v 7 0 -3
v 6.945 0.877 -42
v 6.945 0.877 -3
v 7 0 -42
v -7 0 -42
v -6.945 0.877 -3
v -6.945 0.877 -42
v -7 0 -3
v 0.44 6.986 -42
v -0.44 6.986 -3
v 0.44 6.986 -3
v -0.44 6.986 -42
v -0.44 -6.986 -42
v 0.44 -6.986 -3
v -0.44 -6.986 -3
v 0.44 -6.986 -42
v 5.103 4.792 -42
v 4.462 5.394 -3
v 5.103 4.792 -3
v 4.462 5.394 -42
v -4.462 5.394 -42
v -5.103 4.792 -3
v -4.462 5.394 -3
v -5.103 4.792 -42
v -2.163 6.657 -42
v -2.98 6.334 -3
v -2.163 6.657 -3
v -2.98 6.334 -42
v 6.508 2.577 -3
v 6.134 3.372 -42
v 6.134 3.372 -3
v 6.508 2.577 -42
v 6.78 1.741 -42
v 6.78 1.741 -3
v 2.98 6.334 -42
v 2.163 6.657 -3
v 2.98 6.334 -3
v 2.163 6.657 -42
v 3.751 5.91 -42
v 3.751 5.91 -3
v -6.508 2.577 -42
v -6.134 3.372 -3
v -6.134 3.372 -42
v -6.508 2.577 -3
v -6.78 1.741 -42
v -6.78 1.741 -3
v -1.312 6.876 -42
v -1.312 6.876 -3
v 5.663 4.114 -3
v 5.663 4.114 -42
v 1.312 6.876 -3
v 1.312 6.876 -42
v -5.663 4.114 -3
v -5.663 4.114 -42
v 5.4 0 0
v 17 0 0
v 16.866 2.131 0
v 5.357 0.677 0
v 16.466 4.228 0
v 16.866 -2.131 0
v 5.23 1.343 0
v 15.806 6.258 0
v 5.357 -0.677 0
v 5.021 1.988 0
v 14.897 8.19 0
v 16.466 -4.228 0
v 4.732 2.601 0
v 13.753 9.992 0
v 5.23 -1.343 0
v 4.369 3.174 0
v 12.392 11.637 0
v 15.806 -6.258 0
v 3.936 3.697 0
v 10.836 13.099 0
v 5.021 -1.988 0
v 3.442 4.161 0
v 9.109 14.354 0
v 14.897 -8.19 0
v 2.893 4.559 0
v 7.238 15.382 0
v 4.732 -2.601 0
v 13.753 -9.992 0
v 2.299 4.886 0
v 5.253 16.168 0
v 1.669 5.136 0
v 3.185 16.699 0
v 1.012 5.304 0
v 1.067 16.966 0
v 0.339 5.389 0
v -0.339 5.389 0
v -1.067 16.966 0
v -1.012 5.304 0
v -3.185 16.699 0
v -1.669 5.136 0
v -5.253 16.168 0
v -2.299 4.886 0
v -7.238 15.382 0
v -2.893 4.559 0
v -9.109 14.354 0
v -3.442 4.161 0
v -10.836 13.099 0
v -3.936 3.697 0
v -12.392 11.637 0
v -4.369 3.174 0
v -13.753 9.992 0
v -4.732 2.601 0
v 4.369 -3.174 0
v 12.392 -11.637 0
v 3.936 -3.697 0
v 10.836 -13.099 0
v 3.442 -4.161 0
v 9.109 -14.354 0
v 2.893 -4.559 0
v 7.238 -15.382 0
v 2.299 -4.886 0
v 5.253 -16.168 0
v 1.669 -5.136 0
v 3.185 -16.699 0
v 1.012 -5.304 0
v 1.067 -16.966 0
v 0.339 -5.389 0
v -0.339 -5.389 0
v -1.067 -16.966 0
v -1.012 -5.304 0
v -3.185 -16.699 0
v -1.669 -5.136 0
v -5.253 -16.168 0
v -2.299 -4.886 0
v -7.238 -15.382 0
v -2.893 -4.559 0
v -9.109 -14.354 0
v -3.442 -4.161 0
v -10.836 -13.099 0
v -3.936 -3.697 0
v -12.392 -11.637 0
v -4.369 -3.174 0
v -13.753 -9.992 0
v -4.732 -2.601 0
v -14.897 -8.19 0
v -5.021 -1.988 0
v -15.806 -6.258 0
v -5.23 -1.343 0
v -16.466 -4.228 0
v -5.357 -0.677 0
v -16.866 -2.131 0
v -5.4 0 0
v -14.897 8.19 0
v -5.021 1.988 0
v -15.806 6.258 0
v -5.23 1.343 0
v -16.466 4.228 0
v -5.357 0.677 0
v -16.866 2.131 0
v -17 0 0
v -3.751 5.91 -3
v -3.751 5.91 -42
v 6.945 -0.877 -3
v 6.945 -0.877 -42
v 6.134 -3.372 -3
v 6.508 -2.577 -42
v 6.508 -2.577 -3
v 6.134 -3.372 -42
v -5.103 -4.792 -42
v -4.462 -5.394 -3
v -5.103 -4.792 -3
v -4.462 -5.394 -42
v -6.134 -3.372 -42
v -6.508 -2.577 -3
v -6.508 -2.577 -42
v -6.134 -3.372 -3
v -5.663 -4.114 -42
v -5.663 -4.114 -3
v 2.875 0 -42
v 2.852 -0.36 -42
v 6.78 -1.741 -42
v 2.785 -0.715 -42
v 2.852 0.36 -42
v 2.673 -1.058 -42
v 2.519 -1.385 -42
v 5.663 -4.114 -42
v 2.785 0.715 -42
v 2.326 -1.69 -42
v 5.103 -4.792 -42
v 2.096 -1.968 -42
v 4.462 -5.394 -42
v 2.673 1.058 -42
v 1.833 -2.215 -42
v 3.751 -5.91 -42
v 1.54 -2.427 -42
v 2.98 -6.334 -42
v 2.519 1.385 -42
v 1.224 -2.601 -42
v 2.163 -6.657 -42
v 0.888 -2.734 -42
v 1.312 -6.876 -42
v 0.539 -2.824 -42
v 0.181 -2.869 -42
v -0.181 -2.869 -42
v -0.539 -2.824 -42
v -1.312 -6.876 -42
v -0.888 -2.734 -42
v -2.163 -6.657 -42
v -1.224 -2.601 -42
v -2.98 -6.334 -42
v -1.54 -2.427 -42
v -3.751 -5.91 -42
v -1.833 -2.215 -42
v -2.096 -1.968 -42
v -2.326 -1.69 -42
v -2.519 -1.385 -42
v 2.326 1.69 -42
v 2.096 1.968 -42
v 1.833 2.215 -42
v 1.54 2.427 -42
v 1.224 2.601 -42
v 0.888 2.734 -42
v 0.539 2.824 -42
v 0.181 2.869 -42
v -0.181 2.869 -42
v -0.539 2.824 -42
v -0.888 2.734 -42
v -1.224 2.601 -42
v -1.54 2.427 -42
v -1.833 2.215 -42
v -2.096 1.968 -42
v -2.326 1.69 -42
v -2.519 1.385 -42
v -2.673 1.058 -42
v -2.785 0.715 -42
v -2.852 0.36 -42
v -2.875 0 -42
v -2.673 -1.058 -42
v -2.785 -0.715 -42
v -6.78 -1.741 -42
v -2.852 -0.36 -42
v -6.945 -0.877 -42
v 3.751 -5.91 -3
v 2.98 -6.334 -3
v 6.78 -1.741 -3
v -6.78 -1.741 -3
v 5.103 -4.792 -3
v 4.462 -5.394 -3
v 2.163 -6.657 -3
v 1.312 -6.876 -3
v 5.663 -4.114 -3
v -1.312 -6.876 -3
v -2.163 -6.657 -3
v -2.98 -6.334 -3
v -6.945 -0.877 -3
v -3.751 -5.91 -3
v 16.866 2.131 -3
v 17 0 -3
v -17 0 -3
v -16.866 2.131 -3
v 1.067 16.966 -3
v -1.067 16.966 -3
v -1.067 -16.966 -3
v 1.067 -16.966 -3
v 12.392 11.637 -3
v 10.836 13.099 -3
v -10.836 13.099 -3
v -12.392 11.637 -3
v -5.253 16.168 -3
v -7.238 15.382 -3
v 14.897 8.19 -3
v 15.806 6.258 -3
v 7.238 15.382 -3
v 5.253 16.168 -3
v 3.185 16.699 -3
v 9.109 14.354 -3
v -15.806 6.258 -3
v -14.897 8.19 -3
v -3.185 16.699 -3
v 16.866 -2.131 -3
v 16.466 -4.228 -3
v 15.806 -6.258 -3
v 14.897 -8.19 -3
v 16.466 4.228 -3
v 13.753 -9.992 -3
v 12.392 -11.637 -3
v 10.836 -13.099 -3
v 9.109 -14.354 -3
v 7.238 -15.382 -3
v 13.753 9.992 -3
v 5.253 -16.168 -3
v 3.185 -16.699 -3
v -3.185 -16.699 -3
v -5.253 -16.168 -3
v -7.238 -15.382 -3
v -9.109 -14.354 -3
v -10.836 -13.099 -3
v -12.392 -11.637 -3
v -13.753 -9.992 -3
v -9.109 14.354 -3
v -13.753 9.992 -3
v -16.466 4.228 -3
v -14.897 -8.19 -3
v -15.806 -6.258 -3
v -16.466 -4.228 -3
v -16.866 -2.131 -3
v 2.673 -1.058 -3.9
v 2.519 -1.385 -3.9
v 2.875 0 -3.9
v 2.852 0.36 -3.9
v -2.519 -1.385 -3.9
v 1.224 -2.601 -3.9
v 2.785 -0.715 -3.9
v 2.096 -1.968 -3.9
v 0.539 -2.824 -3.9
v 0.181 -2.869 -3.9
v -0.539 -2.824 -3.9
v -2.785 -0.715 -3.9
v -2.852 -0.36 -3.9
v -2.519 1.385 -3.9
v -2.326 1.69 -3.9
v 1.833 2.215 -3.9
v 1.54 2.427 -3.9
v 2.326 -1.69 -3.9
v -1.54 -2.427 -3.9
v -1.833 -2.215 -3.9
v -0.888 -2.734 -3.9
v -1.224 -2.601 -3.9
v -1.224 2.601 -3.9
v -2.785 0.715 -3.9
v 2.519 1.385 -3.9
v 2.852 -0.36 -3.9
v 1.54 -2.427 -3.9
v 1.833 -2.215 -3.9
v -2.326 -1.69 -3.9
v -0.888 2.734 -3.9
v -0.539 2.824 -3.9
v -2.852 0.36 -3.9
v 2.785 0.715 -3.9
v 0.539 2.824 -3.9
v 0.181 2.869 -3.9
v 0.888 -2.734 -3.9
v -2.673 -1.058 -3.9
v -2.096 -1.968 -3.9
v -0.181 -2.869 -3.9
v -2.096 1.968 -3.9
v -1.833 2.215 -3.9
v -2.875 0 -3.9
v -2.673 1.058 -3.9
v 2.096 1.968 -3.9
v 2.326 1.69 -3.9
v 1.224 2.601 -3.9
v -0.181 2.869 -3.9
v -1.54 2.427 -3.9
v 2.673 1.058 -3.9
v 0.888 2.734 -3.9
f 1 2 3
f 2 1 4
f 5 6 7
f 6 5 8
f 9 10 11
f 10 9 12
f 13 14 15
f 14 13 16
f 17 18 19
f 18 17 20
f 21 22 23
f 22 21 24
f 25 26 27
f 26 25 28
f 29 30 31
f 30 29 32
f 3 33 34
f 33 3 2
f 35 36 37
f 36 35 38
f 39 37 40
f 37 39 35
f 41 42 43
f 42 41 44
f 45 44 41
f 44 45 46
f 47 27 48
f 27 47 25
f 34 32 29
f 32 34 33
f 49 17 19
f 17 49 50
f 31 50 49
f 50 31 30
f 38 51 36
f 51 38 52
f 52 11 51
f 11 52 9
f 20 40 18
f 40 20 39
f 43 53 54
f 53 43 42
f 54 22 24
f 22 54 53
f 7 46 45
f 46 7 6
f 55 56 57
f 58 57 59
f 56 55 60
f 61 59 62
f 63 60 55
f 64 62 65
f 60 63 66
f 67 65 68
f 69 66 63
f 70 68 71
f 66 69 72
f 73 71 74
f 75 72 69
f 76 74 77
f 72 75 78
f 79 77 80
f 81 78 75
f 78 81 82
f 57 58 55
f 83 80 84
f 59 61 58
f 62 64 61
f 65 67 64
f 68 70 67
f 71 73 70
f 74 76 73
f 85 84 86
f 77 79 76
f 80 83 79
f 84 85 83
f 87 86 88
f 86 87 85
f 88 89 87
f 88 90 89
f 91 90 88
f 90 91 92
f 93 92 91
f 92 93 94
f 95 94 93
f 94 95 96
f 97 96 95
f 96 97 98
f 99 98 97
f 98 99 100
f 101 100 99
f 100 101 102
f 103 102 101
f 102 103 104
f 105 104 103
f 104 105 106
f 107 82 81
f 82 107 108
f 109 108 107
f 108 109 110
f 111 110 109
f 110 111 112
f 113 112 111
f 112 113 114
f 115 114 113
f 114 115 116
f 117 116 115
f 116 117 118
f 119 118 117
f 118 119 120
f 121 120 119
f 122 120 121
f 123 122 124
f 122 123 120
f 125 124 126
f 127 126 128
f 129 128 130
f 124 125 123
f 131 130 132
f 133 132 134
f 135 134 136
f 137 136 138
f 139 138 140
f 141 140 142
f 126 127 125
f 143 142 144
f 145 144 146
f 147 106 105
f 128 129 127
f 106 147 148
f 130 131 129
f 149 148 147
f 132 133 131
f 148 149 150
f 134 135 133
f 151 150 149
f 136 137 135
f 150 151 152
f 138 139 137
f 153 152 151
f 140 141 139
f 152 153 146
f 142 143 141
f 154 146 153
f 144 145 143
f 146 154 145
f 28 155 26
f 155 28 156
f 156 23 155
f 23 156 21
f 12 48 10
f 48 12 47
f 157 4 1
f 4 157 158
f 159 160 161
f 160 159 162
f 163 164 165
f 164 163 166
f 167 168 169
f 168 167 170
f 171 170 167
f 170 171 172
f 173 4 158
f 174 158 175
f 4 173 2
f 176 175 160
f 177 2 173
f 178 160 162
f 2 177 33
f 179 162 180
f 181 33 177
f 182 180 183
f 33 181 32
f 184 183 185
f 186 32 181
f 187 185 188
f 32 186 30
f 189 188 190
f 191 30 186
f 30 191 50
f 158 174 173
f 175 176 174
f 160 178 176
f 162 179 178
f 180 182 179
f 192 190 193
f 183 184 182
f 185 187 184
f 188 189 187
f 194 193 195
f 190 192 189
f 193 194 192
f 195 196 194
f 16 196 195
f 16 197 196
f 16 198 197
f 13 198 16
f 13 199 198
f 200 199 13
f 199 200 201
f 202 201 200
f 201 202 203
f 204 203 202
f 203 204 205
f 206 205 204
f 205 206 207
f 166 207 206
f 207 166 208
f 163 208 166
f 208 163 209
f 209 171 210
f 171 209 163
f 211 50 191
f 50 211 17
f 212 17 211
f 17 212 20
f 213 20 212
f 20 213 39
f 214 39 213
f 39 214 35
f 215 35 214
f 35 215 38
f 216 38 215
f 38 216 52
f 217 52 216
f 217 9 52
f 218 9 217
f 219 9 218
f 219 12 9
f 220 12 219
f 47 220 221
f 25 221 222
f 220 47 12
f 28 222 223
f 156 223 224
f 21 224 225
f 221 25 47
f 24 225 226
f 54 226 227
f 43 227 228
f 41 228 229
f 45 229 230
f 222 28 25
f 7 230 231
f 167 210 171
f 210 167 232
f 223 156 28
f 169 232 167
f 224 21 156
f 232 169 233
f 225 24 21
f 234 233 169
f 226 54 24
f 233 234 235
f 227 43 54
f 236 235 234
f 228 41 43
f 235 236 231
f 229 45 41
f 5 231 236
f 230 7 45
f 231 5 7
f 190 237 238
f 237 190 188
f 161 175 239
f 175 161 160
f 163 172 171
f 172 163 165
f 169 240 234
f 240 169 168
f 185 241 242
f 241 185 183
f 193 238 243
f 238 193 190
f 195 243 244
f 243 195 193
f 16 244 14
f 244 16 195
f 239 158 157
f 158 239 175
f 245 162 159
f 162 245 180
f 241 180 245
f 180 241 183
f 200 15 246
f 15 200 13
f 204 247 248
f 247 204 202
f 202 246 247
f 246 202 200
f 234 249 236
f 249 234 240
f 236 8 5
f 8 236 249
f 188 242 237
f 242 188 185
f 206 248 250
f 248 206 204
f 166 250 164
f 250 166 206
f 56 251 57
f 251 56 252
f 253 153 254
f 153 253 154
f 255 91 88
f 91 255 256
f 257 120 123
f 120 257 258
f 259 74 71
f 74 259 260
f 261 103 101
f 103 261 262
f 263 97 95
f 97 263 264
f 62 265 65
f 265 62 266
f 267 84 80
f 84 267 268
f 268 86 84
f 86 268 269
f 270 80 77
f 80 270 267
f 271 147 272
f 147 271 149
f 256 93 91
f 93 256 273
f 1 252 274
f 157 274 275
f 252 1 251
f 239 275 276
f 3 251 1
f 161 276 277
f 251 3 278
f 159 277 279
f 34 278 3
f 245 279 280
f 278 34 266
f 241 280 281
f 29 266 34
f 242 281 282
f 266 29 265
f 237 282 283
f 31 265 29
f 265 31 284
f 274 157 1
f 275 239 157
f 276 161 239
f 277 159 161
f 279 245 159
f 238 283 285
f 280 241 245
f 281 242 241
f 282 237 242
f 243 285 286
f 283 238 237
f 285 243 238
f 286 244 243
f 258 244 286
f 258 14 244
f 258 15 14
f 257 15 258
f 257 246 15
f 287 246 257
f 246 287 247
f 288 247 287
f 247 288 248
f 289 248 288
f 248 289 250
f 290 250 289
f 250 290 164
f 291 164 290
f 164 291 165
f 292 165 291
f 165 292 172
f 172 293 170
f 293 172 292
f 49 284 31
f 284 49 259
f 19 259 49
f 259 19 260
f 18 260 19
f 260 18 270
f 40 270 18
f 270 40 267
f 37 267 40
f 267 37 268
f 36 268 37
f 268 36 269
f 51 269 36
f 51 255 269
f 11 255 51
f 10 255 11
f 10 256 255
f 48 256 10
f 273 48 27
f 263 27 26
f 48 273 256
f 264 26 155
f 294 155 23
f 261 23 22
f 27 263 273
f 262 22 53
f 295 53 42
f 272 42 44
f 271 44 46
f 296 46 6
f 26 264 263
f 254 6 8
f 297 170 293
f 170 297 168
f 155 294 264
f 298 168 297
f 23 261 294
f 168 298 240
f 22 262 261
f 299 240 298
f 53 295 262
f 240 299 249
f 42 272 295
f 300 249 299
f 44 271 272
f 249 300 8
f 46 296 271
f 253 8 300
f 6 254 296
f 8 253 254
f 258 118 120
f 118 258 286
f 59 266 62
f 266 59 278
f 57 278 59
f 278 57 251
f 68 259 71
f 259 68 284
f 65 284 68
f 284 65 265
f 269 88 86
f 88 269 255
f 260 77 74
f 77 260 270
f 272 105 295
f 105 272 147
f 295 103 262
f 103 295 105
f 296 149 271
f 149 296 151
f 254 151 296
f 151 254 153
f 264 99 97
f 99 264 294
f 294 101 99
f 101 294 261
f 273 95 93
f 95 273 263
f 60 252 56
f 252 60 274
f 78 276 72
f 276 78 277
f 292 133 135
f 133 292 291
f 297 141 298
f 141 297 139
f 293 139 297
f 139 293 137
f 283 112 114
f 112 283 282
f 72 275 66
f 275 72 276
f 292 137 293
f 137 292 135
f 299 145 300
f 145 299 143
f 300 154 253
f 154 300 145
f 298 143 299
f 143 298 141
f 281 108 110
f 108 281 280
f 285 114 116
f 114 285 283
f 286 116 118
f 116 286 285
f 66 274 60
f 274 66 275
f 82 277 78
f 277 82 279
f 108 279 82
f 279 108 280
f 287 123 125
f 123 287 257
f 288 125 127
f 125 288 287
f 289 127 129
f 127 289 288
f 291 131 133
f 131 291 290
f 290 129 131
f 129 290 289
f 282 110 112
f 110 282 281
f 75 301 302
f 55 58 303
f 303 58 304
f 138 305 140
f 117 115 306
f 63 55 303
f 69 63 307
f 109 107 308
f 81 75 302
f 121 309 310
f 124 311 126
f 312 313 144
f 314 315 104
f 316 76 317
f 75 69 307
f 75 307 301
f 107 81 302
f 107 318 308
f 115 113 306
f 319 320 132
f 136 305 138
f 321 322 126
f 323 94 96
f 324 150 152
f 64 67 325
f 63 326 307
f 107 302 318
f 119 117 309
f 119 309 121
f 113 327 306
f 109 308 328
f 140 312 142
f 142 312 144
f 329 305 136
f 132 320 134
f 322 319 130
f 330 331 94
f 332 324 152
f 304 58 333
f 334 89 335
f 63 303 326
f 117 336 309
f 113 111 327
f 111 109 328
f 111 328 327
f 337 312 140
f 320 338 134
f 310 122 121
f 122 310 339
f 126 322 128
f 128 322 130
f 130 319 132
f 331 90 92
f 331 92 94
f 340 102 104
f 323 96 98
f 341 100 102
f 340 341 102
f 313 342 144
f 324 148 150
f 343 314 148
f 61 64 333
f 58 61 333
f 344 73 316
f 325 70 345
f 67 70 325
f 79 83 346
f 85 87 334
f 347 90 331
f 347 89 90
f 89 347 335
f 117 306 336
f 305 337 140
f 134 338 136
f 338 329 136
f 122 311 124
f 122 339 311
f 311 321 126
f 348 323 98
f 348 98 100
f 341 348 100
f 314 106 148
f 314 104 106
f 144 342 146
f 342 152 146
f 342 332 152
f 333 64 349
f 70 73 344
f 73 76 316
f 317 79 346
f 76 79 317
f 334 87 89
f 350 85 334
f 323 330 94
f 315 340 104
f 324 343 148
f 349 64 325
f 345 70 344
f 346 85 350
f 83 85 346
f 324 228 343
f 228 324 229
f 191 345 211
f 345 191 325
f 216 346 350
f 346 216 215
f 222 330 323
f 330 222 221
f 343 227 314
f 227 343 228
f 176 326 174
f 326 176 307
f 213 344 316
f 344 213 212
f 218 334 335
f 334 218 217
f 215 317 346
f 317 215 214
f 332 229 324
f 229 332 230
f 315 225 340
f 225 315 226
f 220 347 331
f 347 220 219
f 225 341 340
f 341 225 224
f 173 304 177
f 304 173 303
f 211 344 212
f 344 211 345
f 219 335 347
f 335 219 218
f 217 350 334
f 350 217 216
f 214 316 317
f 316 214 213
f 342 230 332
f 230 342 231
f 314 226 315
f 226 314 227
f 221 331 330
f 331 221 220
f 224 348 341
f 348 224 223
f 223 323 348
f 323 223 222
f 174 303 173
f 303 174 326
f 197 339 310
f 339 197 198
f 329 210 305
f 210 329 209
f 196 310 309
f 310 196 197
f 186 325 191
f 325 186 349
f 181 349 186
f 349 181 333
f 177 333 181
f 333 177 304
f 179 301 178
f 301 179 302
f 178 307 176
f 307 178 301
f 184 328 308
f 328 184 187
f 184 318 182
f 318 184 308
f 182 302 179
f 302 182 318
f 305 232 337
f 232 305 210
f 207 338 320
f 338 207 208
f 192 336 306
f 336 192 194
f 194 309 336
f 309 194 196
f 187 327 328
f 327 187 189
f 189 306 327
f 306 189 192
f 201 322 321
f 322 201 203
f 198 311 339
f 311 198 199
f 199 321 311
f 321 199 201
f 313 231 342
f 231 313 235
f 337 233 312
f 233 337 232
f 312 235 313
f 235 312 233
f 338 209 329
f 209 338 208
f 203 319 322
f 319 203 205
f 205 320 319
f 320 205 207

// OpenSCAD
$fn = 50;


difference() {
	union() {
		translate(v = [0, 0, -42.0000000000]) {
			cylinder(h = 42, r = 7.0000000000);
		}
		translate(v = [0, 0, -3.0000000000]) {
			cylinder(h = 3, r = 17.0000000000);
		}
	}
	union() {
		translate(v = [0, 0, 0]) {
			rotate(a = [0, 0, 0]) {
				difference() {
					union() {
						#translate(v = [0, 0, -42.0000000000]) {
							cylinder(h = 42, r = 2.6000000000);
						}
						#translate(v = [0, 0, -3.9000000000]) {
							cylinder(h = 3.9000000000, r = 7.0000000000, r1 = 2.8750000000, r2 = 5.4000000000);
						}
						#translate(v = [0, 0, -42.0000000000]) {
							cylinder(h = 42, r = 2.8750000000);
						}
						#translate(v = [0, 0, -42.0000000000]) {
							cylinder(h = 42, r = 2.6000000000);
						}
					}
					union();
				}
			}
		}
	}
}
